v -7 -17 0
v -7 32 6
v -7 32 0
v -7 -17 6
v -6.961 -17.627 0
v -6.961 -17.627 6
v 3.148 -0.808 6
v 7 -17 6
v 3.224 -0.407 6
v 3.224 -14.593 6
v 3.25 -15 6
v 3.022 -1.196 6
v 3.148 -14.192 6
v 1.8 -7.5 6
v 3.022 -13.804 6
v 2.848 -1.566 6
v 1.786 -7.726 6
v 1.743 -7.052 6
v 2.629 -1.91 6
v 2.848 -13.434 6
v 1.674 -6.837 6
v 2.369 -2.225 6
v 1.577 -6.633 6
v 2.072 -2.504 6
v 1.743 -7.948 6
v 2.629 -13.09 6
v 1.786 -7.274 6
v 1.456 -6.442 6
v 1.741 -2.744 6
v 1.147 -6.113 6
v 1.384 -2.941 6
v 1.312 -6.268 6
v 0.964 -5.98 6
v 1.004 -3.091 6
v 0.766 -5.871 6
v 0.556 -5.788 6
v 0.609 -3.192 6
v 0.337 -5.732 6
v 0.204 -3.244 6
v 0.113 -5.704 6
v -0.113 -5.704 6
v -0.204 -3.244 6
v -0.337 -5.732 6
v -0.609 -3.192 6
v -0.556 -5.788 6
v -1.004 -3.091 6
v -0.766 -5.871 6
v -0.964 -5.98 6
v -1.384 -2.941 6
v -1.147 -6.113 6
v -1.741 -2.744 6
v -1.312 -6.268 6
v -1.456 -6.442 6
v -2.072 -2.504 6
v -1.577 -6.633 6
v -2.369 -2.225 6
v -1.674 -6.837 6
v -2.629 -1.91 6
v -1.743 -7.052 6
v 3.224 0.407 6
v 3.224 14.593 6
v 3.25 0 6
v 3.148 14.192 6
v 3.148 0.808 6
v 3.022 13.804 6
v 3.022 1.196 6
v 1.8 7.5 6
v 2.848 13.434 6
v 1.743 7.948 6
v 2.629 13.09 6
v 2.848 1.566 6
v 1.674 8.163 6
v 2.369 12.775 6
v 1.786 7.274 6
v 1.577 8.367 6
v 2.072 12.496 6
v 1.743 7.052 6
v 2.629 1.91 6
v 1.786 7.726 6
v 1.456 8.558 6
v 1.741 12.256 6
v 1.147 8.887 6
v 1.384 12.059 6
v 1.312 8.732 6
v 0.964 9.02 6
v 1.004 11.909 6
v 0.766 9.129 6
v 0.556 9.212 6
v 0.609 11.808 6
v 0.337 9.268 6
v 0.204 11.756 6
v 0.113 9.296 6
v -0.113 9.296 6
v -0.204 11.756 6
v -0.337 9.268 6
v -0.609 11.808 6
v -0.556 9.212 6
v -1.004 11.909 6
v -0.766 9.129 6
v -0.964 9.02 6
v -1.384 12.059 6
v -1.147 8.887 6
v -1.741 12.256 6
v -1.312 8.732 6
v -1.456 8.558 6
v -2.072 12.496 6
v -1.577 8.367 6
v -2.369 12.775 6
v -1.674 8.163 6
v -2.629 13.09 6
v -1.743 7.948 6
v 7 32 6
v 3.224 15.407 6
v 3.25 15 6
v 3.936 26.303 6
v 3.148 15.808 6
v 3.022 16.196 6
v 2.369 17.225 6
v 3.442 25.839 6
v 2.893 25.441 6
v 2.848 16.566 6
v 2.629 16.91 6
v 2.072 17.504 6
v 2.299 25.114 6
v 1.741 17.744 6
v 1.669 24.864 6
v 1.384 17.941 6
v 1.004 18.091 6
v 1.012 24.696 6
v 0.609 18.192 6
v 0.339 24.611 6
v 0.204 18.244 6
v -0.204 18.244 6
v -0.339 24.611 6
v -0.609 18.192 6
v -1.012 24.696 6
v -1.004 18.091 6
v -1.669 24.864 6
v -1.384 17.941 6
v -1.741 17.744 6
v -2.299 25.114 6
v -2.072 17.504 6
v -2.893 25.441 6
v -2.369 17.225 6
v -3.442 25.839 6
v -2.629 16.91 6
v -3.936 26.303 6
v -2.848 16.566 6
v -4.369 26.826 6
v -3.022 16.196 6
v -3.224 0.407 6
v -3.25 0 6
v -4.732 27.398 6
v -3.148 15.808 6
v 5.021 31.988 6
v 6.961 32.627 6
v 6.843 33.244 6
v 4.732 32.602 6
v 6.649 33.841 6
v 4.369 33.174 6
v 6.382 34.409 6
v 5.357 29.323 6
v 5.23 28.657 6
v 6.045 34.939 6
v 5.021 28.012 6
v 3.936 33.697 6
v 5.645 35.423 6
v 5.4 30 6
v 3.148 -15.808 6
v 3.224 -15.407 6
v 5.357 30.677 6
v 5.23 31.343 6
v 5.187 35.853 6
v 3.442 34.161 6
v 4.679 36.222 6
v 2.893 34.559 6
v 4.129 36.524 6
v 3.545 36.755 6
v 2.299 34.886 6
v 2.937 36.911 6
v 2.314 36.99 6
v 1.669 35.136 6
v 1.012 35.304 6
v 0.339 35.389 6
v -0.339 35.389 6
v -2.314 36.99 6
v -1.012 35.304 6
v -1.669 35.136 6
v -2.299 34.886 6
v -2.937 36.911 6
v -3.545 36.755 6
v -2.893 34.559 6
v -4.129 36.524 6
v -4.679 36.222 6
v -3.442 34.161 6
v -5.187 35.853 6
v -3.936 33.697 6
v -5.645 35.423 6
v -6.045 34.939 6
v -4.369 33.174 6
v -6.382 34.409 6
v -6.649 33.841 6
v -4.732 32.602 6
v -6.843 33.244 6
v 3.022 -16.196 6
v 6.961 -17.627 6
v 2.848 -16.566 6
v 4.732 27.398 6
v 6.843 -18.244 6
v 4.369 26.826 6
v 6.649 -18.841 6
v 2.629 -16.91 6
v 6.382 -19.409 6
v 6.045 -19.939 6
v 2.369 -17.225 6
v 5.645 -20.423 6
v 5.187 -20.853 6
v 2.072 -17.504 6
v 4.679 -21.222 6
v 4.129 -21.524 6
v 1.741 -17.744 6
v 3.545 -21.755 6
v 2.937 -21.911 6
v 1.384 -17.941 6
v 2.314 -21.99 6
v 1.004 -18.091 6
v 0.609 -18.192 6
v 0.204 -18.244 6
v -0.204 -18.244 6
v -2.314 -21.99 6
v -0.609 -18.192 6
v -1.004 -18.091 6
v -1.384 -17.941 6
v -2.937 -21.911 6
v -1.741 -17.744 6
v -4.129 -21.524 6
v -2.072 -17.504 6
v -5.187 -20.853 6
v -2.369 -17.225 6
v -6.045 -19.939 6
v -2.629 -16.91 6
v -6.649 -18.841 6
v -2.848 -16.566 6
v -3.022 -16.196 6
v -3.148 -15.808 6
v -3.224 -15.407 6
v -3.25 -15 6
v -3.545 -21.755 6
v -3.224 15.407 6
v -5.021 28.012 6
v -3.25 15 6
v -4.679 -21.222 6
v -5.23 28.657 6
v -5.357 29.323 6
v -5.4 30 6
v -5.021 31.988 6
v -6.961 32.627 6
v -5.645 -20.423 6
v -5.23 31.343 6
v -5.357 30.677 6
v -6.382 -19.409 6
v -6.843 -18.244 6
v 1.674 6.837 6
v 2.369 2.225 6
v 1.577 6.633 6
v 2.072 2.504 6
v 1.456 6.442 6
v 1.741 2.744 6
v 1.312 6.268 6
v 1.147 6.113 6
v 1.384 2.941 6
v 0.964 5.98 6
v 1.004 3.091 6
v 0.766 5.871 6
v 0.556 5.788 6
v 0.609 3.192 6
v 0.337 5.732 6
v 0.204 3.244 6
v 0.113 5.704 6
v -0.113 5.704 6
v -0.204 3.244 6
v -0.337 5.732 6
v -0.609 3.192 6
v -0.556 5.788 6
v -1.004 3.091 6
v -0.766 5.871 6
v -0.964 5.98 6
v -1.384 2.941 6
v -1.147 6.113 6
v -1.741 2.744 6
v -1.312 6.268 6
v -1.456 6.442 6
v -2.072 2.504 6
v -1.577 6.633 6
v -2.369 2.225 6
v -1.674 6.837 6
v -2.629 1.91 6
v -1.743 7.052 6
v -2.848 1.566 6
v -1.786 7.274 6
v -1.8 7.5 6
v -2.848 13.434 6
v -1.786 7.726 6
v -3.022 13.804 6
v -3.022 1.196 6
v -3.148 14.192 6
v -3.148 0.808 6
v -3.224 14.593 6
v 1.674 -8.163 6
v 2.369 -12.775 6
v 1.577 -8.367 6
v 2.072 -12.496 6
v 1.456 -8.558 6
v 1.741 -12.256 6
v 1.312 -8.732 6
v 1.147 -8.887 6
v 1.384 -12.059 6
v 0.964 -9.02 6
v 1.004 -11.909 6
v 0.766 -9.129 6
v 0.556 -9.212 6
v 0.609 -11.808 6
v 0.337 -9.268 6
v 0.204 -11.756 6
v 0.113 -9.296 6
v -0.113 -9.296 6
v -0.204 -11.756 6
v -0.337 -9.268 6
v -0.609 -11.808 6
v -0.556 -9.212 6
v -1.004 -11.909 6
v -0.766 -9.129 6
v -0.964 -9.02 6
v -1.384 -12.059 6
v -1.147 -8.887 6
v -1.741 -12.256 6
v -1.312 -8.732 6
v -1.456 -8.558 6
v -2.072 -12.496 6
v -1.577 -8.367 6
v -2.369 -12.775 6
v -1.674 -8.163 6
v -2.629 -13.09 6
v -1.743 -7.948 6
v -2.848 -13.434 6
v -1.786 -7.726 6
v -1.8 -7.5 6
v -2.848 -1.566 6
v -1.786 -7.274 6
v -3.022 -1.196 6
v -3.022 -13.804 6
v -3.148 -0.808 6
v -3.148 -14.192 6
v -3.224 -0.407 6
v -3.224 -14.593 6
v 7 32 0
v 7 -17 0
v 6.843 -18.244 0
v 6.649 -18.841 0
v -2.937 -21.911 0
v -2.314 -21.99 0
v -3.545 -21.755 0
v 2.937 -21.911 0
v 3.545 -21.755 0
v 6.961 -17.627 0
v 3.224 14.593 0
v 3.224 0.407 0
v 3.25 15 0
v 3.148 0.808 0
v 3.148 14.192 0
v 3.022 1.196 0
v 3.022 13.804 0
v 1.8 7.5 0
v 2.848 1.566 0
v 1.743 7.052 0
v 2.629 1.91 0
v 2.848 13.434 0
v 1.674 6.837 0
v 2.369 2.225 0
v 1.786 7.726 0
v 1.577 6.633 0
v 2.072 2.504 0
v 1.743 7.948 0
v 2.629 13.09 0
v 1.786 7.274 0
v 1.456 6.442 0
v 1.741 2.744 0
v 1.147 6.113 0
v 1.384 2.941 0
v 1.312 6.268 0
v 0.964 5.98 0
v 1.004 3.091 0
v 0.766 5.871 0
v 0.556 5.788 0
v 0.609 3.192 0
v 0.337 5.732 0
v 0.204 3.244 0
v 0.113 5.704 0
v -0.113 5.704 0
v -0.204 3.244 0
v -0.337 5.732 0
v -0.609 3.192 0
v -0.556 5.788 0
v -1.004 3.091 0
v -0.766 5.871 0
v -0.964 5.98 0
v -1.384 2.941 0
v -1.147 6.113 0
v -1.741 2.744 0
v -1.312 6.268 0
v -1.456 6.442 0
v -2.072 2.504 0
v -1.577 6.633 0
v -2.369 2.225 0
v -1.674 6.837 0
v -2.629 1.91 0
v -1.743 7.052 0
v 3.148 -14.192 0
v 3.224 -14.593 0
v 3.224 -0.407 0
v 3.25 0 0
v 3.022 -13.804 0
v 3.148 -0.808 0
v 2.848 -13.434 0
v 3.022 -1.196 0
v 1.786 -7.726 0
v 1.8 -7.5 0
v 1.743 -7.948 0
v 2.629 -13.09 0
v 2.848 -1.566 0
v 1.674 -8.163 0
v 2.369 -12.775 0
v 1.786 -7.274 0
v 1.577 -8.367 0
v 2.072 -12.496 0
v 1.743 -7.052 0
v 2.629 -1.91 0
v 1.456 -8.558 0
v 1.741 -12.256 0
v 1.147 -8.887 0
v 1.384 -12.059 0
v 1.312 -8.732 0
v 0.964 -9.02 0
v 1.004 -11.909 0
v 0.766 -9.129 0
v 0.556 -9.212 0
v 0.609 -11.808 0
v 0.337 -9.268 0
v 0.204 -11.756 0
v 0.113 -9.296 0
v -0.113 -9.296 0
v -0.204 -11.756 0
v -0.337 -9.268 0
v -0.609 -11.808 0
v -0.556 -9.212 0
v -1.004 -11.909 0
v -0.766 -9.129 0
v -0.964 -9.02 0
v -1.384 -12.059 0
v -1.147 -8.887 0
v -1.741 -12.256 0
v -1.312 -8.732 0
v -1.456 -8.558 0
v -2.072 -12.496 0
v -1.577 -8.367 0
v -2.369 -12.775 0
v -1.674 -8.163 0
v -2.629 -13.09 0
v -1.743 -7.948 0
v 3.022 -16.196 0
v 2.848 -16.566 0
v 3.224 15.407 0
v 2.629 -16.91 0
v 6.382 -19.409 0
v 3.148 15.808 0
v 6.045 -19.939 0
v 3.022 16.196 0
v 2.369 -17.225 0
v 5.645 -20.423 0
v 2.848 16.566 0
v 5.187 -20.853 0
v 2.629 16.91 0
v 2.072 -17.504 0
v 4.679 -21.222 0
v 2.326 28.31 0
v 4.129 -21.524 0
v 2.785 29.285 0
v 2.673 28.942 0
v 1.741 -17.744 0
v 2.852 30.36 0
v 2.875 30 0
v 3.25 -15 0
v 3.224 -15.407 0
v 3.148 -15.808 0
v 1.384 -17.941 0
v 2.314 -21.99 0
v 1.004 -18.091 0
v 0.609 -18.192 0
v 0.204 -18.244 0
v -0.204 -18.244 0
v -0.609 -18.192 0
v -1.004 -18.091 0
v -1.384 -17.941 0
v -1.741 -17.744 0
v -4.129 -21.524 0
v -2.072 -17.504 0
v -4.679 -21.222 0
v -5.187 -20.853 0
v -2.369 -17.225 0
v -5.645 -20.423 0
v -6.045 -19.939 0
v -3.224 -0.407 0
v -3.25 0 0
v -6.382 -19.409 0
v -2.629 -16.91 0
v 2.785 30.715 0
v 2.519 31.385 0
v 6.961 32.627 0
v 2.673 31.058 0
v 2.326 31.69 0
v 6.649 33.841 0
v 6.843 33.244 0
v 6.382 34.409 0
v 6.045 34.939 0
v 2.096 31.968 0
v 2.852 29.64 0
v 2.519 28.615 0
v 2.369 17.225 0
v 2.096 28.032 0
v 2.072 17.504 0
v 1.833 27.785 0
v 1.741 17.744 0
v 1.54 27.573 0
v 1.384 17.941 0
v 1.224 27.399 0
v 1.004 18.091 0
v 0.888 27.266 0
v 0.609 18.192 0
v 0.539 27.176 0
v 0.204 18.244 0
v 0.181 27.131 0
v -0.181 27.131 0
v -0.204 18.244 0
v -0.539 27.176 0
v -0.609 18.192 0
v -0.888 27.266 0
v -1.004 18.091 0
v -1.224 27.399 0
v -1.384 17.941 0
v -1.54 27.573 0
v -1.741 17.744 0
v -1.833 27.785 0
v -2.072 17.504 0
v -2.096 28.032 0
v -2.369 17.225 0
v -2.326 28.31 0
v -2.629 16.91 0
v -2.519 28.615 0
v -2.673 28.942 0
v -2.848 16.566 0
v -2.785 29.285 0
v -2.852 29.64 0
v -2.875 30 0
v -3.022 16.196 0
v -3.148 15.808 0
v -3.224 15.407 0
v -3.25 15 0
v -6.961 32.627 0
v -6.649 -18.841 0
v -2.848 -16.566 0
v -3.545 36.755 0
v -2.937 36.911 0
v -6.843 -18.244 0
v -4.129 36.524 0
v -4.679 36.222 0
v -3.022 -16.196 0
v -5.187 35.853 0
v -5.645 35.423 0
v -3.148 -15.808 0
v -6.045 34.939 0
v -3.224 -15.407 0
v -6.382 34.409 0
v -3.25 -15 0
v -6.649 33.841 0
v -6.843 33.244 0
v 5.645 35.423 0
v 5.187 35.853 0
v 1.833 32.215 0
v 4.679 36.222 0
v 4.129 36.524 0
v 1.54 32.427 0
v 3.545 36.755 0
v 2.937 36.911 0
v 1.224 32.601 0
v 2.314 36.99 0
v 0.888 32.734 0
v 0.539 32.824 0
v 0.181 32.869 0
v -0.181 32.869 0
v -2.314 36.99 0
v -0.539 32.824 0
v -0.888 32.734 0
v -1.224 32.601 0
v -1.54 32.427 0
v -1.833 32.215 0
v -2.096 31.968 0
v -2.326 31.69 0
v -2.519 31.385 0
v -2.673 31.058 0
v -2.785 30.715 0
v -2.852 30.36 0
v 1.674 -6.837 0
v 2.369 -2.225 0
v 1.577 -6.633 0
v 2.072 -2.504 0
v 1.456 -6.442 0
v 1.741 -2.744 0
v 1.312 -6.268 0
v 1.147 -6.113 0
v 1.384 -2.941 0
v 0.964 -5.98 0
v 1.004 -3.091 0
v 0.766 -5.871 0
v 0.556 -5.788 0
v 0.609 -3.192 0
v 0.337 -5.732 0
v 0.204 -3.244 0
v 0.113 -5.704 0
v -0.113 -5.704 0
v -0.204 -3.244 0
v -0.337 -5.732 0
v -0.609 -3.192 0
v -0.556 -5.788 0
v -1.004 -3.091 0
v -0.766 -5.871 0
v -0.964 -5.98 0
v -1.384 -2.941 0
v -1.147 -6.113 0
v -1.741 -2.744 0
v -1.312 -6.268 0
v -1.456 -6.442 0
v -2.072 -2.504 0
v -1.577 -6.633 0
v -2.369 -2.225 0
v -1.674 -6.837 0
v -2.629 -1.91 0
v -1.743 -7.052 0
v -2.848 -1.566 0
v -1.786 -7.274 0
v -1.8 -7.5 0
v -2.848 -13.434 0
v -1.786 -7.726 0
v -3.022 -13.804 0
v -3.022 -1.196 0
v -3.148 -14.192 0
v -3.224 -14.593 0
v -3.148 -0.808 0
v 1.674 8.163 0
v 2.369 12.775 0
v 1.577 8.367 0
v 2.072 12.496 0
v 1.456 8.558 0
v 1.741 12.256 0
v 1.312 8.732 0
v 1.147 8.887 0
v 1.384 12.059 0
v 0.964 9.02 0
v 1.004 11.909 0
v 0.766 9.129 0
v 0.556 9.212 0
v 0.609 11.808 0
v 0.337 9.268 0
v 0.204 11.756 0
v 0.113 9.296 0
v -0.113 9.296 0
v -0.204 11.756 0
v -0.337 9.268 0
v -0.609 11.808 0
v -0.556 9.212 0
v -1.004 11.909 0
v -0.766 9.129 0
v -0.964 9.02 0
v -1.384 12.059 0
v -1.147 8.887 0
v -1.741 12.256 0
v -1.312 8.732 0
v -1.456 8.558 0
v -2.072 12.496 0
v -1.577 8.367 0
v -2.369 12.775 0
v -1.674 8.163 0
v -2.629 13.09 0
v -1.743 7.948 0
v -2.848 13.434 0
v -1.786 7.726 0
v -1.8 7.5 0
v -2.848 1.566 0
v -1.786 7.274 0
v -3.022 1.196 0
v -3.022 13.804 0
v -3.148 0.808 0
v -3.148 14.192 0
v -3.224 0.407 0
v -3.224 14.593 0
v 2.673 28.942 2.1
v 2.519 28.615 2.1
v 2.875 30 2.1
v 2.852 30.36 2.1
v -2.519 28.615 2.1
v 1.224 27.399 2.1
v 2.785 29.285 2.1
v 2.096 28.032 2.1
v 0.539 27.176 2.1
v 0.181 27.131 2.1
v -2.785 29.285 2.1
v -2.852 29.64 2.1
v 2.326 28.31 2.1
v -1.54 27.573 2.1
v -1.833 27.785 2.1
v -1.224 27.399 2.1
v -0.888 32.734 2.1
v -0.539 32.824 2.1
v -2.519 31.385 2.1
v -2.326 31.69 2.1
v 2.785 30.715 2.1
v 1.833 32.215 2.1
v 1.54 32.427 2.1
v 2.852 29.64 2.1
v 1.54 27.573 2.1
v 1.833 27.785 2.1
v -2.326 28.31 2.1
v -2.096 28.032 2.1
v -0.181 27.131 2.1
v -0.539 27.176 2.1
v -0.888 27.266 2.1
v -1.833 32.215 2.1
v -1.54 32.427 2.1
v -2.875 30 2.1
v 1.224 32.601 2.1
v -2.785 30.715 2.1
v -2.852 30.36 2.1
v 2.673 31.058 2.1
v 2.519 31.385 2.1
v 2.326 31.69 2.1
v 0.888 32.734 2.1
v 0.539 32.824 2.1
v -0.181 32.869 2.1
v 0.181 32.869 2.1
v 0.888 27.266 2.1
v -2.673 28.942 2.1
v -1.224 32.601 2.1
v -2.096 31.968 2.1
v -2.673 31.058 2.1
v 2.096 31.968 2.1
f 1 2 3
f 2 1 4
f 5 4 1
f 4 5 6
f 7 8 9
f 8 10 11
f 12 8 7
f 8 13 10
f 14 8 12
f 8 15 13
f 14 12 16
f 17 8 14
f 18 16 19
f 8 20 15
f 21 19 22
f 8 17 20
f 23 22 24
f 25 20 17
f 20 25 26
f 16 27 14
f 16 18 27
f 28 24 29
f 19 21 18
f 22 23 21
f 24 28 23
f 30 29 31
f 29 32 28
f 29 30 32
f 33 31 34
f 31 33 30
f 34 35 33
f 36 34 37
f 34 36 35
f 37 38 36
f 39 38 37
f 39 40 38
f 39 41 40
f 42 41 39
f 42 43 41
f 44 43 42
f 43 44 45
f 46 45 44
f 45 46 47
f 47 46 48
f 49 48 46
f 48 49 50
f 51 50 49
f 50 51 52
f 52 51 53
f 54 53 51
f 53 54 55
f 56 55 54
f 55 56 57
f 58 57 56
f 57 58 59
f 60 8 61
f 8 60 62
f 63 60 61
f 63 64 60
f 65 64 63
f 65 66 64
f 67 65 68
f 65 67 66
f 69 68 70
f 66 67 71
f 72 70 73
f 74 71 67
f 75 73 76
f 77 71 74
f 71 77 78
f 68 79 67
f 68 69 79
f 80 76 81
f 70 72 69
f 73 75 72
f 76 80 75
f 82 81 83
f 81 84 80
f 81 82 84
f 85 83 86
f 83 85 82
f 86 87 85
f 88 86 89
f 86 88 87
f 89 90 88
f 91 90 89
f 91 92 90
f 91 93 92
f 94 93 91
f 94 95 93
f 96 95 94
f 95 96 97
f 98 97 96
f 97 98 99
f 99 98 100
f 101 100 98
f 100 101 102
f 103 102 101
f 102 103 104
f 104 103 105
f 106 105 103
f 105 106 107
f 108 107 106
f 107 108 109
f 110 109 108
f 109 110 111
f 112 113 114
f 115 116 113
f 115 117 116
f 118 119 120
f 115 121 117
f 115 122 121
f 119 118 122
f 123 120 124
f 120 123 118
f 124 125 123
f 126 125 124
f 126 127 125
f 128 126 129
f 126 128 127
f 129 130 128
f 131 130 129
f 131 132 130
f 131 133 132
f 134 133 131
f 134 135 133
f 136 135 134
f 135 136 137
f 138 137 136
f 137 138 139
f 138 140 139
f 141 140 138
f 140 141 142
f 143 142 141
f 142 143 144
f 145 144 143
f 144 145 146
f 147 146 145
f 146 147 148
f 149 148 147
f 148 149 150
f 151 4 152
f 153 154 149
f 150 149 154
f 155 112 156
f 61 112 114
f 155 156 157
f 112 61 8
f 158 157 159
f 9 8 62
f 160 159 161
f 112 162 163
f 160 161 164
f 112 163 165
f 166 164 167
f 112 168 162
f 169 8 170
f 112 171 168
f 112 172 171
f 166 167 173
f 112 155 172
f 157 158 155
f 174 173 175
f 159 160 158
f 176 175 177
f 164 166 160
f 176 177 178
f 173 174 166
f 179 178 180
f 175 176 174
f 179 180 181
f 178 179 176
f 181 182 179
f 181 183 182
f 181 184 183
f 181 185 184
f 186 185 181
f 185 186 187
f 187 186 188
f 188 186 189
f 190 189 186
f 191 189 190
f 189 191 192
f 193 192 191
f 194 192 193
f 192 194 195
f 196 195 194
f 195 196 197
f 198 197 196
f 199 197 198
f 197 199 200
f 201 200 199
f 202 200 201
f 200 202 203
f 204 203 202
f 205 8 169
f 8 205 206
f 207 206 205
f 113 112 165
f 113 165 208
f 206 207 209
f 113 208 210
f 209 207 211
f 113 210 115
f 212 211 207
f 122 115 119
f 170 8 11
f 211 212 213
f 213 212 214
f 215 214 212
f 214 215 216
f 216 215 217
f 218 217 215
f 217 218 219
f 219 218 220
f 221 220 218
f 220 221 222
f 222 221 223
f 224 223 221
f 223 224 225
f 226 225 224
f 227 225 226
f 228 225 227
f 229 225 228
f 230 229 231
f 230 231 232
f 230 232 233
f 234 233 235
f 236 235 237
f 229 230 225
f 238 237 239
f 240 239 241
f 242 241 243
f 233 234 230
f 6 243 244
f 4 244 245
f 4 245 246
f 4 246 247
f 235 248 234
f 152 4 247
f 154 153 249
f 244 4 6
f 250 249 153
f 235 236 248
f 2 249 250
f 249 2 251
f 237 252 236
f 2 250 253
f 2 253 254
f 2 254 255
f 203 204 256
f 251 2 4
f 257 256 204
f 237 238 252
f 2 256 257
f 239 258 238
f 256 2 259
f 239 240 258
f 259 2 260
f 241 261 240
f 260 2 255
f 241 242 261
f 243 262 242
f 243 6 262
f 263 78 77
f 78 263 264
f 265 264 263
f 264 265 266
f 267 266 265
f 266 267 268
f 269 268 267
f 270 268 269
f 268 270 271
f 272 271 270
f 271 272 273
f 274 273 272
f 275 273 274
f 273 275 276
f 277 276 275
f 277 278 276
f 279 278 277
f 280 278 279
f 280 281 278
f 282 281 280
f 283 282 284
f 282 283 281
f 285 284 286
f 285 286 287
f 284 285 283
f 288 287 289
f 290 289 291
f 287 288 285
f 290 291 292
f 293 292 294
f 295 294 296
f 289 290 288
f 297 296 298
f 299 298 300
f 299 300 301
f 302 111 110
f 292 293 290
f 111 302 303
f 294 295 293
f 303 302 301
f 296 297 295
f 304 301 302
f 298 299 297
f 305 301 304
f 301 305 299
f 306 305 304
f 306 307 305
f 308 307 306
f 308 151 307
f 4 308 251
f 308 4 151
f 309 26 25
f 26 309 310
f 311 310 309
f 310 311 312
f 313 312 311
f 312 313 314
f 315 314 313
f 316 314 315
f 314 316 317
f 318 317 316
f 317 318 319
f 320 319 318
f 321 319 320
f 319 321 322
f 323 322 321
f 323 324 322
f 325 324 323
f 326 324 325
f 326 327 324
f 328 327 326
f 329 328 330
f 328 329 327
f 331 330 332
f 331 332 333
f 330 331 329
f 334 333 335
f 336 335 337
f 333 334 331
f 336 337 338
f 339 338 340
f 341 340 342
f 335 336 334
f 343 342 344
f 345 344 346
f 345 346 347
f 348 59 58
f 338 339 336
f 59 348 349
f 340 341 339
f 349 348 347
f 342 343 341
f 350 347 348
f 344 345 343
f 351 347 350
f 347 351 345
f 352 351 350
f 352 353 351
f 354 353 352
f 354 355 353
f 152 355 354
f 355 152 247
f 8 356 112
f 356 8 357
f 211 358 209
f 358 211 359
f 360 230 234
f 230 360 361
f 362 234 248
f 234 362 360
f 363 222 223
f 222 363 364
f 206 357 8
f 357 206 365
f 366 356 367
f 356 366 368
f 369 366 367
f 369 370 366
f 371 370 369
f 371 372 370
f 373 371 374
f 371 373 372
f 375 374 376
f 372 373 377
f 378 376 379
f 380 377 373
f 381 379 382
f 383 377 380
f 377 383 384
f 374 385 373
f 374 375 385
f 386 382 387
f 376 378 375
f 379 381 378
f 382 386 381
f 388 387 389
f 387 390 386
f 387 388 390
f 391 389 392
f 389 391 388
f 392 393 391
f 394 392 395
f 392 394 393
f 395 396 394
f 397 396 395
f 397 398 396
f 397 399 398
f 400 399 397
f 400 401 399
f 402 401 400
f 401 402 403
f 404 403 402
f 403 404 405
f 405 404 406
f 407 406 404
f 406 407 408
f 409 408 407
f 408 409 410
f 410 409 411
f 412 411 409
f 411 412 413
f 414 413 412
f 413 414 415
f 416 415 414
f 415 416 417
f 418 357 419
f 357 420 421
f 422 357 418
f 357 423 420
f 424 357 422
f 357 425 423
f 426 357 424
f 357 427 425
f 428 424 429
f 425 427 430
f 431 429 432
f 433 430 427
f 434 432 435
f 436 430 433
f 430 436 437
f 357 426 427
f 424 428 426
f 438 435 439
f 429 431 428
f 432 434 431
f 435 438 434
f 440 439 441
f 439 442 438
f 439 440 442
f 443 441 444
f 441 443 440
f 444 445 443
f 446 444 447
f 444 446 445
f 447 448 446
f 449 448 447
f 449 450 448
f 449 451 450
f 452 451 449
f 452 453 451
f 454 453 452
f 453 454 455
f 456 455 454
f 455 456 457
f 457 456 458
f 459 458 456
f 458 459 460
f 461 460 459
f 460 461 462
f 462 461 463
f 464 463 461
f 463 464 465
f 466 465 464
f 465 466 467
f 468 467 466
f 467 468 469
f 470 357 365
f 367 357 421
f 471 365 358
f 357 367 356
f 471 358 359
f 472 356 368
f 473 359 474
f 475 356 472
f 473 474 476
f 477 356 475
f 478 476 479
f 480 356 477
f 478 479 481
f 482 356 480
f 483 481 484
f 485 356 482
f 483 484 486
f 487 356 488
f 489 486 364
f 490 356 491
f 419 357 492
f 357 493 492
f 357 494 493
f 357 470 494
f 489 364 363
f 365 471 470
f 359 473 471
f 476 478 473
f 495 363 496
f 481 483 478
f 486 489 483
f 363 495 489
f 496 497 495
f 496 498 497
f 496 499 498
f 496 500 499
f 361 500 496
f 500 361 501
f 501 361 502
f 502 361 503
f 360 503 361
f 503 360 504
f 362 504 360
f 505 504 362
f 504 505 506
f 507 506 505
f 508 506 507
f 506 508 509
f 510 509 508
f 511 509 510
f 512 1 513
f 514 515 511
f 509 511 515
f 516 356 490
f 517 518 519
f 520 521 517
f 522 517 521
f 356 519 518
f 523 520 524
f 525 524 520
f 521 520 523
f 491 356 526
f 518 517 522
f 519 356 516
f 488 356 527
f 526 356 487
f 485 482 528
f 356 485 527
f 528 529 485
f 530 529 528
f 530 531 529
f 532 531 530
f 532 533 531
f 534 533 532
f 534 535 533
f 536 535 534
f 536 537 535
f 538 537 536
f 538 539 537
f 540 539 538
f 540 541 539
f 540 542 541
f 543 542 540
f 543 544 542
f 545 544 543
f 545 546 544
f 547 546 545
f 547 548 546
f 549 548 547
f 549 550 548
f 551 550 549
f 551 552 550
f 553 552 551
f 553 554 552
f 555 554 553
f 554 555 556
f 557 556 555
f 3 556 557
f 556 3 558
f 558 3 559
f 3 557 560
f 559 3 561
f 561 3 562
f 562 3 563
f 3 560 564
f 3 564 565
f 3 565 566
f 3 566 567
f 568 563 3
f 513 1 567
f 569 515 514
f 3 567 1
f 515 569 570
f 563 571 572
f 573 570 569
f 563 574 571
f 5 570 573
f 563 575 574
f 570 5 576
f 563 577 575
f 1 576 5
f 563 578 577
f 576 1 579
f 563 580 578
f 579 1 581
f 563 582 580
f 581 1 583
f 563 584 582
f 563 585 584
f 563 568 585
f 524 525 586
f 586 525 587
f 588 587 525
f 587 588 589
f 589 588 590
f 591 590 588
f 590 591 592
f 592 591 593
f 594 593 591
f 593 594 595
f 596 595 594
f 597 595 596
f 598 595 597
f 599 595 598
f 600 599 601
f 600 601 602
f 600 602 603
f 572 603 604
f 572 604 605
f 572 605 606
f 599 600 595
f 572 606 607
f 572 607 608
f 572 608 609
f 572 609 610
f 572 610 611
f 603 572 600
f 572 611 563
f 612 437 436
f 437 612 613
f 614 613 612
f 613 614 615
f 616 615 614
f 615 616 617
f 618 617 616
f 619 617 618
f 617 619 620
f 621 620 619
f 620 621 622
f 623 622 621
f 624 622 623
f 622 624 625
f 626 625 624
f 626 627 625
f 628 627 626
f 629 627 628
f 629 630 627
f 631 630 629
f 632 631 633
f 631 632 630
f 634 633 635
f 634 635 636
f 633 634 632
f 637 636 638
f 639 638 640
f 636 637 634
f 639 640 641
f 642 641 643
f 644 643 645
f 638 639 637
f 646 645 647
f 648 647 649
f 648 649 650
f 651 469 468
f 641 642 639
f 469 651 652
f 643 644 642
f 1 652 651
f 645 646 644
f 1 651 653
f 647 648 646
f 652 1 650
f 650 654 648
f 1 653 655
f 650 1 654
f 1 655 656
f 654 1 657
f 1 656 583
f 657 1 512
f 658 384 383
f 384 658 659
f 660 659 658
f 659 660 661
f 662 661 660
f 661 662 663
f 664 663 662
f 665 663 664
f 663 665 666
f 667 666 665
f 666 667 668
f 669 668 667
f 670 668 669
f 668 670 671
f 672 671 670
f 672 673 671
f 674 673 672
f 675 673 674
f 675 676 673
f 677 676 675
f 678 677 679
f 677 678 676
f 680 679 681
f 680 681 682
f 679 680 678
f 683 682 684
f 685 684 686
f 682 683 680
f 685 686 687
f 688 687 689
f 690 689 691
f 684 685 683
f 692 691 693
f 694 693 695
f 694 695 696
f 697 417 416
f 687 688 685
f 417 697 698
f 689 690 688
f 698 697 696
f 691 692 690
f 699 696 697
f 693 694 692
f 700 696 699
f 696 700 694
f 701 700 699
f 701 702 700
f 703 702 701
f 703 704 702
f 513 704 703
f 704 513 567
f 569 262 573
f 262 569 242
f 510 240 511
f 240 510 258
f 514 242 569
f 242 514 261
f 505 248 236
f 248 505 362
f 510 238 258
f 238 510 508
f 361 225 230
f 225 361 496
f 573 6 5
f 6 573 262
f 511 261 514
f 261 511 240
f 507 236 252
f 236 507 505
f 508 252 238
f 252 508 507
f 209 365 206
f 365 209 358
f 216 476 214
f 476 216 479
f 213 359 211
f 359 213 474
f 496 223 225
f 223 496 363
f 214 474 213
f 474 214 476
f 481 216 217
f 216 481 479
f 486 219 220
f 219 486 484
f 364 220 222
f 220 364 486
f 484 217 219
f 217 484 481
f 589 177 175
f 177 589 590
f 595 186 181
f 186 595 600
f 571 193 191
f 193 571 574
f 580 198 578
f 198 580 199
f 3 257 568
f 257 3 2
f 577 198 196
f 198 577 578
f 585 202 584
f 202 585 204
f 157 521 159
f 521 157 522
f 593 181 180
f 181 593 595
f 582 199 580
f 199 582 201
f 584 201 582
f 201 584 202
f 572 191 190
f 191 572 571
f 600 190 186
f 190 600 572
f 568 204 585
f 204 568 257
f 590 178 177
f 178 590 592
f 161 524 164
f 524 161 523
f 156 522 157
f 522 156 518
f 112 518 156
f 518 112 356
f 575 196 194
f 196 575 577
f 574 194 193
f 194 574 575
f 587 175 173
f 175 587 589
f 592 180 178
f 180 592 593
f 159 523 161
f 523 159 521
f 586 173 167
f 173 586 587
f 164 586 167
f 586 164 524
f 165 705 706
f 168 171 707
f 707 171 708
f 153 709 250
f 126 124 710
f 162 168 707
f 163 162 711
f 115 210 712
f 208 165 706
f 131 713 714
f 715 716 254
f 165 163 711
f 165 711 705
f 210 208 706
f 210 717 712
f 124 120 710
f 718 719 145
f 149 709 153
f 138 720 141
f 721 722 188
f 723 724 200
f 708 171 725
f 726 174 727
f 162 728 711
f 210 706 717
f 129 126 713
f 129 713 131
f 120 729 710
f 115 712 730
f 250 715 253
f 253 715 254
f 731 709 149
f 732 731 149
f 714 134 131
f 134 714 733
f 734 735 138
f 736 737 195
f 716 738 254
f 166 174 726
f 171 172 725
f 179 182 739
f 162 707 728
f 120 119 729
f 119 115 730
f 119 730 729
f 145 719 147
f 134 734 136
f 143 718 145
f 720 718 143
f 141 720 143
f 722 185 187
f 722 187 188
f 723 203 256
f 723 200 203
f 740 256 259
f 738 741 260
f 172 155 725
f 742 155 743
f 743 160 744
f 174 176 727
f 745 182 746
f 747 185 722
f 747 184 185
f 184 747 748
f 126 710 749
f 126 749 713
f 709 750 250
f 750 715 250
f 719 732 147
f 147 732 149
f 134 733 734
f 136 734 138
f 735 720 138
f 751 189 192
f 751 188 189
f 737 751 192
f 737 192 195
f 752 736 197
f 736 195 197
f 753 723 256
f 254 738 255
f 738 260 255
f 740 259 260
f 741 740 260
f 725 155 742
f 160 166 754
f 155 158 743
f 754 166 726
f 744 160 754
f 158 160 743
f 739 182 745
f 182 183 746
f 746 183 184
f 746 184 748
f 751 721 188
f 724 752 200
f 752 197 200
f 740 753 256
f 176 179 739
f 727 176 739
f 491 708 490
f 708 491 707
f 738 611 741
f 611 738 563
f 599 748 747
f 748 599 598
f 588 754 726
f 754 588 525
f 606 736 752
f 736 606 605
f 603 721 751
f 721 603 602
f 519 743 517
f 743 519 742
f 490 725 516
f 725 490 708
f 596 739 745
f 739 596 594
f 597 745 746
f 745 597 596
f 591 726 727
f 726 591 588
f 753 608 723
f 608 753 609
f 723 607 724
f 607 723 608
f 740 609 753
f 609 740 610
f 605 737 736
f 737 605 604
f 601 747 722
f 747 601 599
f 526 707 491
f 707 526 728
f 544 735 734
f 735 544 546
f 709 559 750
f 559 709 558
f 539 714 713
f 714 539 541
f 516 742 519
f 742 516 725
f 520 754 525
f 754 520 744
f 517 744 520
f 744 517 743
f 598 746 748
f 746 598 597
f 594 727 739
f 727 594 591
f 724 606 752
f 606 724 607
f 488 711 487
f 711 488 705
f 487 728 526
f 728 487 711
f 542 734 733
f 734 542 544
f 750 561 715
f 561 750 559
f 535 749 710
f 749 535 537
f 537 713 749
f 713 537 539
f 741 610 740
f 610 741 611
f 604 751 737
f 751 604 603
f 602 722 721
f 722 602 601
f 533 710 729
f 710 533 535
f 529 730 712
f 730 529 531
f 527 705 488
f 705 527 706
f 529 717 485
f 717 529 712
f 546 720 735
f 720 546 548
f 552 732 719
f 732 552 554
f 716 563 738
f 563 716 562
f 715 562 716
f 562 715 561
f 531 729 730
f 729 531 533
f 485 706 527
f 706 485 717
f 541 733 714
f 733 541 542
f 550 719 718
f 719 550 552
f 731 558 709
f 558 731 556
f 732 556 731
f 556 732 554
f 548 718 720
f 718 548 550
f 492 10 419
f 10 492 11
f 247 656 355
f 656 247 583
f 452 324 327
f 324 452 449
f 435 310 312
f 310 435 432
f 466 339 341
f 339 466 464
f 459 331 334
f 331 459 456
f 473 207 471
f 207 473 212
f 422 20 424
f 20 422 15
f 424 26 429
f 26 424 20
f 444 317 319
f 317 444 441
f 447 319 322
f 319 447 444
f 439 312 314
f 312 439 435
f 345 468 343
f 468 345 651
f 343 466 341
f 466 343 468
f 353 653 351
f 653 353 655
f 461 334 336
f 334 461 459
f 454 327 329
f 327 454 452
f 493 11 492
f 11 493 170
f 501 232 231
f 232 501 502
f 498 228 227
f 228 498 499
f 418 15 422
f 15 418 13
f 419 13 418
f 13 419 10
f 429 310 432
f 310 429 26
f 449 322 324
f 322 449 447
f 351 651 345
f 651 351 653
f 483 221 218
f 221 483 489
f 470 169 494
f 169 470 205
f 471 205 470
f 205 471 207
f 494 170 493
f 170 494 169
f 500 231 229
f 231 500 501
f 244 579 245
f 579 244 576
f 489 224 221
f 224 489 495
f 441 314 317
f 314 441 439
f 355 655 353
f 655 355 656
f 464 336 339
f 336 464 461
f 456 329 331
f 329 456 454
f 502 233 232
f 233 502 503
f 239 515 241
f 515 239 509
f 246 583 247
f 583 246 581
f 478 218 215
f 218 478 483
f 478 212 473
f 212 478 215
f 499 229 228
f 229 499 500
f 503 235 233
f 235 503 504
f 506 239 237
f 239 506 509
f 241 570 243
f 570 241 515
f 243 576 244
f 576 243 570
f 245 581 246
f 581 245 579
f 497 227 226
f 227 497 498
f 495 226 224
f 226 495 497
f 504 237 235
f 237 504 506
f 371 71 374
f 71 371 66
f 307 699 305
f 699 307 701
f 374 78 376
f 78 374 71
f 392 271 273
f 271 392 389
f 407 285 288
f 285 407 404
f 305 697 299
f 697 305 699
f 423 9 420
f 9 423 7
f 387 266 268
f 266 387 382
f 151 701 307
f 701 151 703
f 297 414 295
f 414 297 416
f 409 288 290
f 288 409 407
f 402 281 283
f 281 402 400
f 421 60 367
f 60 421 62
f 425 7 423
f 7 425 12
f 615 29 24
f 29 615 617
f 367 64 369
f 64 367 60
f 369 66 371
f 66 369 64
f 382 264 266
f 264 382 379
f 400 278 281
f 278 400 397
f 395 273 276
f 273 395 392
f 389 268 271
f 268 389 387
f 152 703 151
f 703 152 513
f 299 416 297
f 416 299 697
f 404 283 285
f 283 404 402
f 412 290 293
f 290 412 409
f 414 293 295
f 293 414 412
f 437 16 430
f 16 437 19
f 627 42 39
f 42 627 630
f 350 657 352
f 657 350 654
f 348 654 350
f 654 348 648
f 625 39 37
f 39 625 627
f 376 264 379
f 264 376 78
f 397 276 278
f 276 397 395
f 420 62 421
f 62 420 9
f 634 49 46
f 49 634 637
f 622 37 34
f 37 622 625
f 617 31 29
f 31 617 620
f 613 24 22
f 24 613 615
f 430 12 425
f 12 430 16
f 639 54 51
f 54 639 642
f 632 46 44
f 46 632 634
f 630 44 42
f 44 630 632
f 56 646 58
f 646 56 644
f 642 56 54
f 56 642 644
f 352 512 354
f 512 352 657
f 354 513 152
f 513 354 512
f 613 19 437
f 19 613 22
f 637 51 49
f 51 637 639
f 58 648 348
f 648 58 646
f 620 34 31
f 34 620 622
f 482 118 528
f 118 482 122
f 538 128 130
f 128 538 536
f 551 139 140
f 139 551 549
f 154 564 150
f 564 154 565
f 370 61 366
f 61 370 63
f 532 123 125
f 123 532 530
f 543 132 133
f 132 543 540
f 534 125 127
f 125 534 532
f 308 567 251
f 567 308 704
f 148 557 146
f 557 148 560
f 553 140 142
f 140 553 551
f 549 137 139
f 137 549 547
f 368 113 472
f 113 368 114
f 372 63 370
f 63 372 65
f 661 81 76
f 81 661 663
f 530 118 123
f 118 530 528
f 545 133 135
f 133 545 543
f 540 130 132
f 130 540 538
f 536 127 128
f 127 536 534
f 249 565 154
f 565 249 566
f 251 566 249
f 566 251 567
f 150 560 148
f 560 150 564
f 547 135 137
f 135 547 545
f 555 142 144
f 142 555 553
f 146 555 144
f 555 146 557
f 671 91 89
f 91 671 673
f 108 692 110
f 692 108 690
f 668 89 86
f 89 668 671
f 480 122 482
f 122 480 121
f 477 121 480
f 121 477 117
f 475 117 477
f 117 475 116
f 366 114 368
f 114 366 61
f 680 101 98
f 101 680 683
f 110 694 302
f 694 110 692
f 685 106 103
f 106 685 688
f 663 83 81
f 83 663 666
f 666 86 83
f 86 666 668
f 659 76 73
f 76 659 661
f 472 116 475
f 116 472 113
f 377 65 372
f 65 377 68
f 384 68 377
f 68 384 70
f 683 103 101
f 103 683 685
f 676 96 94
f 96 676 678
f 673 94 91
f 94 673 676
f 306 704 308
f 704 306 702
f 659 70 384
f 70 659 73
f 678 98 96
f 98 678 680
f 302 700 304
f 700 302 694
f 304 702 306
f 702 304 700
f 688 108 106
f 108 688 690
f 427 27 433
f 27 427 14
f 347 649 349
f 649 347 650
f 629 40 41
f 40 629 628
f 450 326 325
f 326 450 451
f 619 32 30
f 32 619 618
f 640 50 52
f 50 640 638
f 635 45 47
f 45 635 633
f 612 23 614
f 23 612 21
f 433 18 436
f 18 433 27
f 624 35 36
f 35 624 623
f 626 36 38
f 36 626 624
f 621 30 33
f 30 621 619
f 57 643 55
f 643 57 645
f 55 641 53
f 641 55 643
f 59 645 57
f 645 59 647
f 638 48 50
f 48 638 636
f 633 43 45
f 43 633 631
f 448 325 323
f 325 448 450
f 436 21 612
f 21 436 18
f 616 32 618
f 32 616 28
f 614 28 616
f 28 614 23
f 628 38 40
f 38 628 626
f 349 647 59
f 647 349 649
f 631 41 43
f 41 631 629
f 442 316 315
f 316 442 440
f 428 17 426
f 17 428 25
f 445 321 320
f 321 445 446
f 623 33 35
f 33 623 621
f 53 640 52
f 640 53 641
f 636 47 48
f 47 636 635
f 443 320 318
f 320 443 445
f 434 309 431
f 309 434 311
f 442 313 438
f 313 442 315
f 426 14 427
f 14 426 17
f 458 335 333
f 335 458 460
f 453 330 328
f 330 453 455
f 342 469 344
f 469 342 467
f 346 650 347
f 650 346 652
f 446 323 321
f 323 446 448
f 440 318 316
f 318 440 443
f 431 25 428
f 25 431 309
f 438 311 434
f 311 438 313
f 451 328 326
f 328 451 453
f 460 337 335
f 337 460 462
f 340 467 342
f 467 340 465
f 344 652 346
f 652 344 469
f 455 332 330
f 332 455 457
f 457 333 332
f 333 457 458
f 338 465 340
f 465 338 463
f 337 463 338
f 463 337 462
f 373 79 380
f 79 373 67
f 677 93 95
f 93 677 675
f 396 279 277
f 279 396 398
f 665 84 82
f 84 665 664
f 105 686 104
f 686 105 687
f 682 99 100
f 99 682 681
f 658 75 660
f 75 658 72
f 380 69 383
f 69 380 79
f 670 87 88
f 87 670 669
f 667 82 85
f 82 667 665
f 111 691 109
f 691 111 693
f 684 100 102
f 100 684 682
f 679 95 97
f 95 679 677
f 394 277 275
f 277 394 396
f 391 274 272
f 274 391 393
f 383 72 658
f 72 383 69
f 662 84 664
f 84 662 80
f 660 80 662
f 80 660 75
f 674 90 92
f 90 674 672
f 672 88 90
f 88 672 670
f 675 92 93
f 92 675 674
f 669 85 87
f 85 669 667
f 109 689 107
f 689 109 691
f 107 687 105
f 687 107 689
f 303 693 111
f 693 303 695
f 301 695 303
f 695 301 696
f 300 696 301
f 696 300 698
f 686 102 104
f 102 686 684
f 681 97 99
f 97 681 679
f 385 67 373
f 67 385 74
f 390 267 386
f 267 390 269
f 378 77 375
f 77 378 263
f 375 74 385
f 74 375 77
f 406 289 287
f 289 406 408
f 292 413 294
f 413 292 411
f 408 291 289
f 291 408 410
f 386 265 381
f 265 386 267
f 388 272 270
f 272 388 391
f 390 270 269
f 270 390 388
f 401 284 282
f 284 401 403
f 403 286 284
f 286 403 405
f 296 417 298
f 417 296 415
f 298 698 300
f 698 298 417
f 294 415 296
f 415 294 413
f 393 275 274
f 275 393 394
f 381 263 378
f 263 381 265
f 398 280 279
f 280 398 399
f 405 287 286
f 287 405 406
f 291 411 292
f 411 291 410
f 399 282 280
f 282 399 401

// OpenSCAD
$fn = 50;


difference() {
	union() {
		hull() {
			translate(v = [-2.0000000000, 17.0000000000, 0]) {
				cylinder(h = 6, r = 5);
			}
			translate(v = [2.0000000000, 17.0000000000, 0]) {
				cylinder(h = 6, r = 5);
			}
			translate(v = [-2.0000000000, -17.0000000000, 0]) {
				cylinder(h = 6, r = 5);
			}
			translate(v = [2.0000000000, -17.0000000000, 0]) {
				cylinder(h = 6, r = 5);
			}
		}
		translate(v = [0.0000000000, 22.5000000000, 0]) {
			hull() {
				translate(v = [-2.0000000000, 9.5000000000, 0]) {
					cylinder(h = 6, r = 5);
				}
				translate(v = [2.0000000000, 9.5000000000, 0]) {
					cylinder(h = 6, r = 5);
				}
				translate(v = [-2.0000000000, -9.5000000000, 0]) {
					cylinder(h = 6, r = 5);
				}
				translate(v = [2.0000000000, -9.5000000000, 0]) {
					cylinder(h = 6, r = 5);
				}
			}
		}
		translate(v = [0.0000000000, 22.5000000000, 0]) {
			hull() {
				translate(v = [-2.0000000000, 9.5000000000, 0]) {
					cylinder(h = 6, r = 5);
				}
				translate(v = [2.0000000000, 9.5000000000, 0]) {
					cylinder(h = 6, r = 5);
				}
				translate(v = [-2.0000000000, -9.5000000000, 0]) {
					cylinder(h = 6, r = 5);
				}
				translate(v = [2.0000000000, -9.5000000000, 0]) {
					cylinder(h = 6, r = 5);
				}
			}
		}
	}
	union() {
		translate(v = [0.0000000000, 30.0000000000, 6]) {
			rotate(a = [0, 0, 0]) {
				difference() {
					union() {
						#translate(v = [0, 0, -6.0000000000]) {
							cylinder(h = 6, r = 2.6000000000);
						}
						#translate(v = [0, 0, -3.9000000000]) {
							cylinder(h = 3.9000000000, r1 = 2.8750000000, r2 = 5.4000000000);
						}
						#translate(v = [0, 0, -6.0000000000]) {
							cylinder(h = 6, r = 2.8750000000);
						}
						#translate(v = [0, 0, -6.0000000000]) {
							cylinder(h = 6, r = 2.6000000000);
						}
					}
					union();
				}
			}
		}
		translate(v = [0.0000000000, 30.0000000000, 6]) {
			rotate(a = [0, 0, 0]) {
				difference() {
					union() {
						#translate(v = [0, 0, -6.0000000000]) {
							cylinder(h = 6, r = 2.6000000000);
						}
						#translate(v = [0, 0, -3.9000000000]) {
							cylinder(h = 3.9000000000, r1 = 2.8750000000, r2 = 5.4000000000);
						}
						#translate(v = [0, 0, -6.0000000000]) {
							cylinder(h = 6, r = 2.8750000000);
						}
						#translate(v = [0, 0, -6.0000000000]) {
							cylinder(h = 6, r = 2.6000000000);
						}
					}
					union();
				}
			}
		}
		translate(v = [0.0000000000, -15.0000000000, 0]) {
			translate(v = [0, 0, -100]) {
				cylinder(h = 200, r = 3.2500000000);
			}
		}
		translate(v = [0, 0, -100]) {
			cylinder(h = 200, r = 3.2500000000);
		}
		translate(v = [0.0000000000, 15.0000000000, 0]) {
			translate(v = [0, 0, -100]) {
				cylinder(h = 200, r = 3.2500000000);
			}
		}
		translate(v = [0.0000000000, -15.0000000000, 0]) {
			translate(v = [0, 0, -100]) {
				cylinder(h = 200, r = 1.8000000000);
			}
		}
		translate(v = [0.0000000000, -7.5000000000, 0]) {
			translate(v = [0, 0, -100]) {
				cylinder(h = 200, r = 1.8000000000);
			}
		}
		translate(v = [0, 0, -100]) {
			cylinder(h = 200, r = 1.8000000000);
		}
		translate(v = [0.0000000000, 7.5000000000, 0]) {
			translate(v = [0, 0, -100]) {
				cylinder(h = 200, r = 1.8000000000);
			}
		}
		translate(v = [0.0000000000, 15.0000000000, 0]) {
			translate(v = [0, 0, -100]) {
				cylinder(h = 200, r = 1.8000000000);
			}
		}
	}
}
